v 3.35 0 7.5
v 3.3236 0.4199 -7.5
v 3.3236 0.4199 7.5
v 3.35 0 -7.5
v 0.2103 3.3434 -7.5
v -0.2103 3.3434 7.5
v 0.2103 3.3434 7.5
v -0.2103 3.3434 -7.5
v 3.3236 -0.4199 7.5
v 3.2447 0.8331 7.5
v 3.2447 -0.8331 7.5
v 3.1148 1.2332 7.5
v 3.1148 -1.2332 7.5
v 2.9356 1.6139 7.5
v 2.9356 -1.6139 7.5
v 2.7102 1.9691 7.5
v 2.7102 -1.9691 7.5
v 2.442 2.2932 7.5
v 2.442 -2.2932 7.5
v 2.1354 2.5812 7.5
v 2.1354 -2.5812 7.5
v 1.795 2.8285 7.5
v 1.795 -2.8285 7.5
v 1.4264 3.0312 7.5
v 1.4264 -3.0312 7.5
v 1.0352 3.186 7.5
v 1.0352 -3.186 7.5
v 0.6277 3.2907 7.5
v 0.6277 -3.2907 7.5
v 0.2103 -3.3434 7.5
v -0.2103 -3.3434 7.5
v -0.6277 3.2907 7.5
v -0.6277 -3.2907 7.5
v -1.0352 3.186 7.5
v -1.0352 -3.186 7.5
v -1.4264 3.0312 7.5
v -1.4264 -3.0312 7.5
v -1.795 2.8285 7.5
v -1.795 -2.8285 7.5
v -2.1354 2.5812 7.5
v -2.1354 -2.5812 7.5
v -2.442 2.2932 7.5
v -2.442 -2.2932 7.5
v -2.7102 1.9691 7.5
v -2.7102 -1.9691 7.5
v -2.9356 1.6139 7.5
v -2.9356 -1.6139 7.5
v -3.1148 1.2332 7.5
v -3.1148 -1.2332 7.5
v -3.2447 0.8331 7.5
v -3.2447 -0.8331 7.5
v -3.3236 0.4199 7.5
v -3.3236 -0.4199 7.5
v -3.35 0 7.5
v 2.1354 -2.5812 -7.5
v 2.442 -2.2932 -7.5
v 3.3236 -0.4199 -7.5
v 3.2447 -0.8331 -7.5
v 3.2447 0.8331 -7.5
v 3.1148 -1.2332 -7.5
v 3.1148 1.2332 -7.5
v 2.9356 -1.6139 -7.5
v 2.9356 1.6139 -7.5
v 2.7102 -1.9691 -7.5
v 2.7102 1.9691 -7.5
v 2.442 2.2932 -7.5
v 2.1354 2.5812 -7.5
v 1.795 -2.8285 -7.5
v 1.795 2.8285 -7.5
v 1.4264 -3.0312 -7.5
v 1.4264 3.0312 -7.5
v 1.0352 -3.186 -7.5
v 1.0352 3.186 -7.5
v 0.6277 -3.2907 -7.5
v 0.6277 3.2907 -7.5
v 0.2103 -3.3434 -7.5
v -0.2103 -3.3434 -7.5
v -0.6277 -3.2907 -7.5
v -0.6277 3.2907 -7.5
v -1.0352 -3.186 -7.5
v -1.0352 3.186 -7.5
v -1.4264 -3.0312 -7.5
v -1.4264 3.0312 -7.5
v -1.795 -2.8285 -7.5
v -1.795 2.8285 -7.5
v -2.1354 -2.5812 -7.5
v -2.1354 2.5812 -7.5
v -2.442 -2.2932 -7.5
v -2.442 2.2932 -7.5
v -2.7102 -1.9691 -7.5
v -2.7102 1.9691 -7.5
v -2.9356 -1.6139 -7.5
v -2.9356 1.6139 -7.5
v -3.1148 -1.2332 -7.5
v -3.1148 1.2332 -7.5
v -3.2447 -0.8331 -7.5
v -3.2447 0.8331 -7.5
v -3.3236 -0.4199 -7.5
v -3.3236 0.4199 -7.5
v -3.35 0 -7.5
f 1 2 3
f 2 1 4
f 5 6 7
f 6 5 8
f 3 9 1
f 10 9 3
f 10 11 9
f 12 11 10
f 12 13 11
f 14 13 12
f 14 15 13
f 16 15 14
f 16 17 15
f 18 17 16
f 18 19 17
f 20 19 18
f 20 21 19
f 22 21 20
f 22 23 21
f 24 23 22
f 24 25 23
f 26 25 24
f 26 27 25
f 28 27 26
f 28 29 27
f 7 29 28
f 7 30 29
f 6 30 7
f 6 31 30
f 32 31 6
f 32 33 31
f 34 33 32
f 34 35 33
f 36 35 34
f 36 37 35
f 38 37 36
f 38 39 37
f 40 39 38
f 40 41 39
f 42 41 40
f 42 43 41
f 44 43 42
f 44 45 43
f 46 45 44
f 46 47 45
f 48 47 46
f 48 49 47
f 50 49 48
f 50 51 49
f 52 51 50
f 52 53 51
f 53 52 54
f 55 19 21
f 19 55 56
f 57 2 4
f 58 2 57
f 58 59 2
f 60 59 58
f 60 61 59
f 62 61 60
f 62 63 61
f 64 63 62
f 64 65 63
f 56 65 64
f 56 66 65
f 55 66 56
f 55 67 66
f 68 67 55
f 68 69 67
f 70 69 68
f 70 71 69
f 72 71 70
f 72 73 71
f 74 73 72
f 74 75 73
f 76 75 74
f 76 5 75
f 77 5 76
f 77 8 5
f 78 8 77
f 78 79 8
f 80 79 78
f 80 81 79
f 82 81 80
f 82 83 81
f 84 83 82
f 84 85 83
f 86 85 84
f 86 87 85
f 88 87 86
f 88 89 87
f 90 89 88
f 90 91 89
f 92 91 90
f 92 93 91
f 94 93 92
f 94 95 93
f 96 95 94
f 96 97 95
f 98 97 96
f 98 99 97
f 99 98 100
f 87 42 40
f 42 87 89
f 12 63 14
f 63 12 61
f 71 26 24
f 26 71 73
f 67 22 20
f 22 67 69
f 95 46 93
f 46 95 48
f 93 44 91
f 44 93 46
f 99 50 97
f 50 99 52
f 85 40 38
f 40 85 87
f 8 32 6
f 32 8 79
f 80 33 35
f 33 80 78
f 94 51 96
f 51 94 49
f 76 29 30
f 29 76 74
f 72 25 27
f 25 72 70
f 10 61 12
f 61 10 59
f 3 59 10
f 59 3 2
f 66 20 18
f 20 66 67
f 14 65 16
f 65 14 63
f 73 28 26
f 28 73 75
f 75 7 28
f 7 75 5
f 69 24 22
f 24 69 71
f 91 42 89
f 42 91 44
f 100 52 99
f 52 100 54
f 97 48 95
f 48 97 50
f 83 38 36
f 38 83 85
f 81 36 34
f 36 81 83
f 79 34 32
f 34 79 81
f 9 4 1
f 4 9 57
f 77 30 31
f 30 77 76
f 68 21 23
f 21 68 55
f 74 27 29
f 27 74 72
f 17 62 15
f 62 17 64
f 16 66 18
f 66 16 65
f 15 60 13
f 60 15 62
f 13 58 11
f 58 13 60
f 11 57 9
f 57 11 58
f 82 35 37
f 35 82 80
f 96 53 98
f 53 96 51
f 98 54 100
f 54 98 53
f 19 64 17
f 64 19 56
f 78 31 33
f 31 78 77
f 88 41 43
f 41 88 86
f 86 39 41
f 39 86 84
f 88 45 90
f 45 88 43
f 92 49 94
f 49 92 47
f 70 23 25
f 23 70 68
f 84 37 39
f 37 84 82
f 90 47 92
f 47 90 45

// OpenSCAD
$fn = 50;


difference() {
	union() {
		translate(v = [0, 0, -7.5000000000]) {
			cylinder(h = 15, r = 3.3500000000);
		}
	}
	union() {
		translate(v = [0, 0, -100.0000000000]) {
			cylinder(h = 200, r = 0);
		}
	}
}
